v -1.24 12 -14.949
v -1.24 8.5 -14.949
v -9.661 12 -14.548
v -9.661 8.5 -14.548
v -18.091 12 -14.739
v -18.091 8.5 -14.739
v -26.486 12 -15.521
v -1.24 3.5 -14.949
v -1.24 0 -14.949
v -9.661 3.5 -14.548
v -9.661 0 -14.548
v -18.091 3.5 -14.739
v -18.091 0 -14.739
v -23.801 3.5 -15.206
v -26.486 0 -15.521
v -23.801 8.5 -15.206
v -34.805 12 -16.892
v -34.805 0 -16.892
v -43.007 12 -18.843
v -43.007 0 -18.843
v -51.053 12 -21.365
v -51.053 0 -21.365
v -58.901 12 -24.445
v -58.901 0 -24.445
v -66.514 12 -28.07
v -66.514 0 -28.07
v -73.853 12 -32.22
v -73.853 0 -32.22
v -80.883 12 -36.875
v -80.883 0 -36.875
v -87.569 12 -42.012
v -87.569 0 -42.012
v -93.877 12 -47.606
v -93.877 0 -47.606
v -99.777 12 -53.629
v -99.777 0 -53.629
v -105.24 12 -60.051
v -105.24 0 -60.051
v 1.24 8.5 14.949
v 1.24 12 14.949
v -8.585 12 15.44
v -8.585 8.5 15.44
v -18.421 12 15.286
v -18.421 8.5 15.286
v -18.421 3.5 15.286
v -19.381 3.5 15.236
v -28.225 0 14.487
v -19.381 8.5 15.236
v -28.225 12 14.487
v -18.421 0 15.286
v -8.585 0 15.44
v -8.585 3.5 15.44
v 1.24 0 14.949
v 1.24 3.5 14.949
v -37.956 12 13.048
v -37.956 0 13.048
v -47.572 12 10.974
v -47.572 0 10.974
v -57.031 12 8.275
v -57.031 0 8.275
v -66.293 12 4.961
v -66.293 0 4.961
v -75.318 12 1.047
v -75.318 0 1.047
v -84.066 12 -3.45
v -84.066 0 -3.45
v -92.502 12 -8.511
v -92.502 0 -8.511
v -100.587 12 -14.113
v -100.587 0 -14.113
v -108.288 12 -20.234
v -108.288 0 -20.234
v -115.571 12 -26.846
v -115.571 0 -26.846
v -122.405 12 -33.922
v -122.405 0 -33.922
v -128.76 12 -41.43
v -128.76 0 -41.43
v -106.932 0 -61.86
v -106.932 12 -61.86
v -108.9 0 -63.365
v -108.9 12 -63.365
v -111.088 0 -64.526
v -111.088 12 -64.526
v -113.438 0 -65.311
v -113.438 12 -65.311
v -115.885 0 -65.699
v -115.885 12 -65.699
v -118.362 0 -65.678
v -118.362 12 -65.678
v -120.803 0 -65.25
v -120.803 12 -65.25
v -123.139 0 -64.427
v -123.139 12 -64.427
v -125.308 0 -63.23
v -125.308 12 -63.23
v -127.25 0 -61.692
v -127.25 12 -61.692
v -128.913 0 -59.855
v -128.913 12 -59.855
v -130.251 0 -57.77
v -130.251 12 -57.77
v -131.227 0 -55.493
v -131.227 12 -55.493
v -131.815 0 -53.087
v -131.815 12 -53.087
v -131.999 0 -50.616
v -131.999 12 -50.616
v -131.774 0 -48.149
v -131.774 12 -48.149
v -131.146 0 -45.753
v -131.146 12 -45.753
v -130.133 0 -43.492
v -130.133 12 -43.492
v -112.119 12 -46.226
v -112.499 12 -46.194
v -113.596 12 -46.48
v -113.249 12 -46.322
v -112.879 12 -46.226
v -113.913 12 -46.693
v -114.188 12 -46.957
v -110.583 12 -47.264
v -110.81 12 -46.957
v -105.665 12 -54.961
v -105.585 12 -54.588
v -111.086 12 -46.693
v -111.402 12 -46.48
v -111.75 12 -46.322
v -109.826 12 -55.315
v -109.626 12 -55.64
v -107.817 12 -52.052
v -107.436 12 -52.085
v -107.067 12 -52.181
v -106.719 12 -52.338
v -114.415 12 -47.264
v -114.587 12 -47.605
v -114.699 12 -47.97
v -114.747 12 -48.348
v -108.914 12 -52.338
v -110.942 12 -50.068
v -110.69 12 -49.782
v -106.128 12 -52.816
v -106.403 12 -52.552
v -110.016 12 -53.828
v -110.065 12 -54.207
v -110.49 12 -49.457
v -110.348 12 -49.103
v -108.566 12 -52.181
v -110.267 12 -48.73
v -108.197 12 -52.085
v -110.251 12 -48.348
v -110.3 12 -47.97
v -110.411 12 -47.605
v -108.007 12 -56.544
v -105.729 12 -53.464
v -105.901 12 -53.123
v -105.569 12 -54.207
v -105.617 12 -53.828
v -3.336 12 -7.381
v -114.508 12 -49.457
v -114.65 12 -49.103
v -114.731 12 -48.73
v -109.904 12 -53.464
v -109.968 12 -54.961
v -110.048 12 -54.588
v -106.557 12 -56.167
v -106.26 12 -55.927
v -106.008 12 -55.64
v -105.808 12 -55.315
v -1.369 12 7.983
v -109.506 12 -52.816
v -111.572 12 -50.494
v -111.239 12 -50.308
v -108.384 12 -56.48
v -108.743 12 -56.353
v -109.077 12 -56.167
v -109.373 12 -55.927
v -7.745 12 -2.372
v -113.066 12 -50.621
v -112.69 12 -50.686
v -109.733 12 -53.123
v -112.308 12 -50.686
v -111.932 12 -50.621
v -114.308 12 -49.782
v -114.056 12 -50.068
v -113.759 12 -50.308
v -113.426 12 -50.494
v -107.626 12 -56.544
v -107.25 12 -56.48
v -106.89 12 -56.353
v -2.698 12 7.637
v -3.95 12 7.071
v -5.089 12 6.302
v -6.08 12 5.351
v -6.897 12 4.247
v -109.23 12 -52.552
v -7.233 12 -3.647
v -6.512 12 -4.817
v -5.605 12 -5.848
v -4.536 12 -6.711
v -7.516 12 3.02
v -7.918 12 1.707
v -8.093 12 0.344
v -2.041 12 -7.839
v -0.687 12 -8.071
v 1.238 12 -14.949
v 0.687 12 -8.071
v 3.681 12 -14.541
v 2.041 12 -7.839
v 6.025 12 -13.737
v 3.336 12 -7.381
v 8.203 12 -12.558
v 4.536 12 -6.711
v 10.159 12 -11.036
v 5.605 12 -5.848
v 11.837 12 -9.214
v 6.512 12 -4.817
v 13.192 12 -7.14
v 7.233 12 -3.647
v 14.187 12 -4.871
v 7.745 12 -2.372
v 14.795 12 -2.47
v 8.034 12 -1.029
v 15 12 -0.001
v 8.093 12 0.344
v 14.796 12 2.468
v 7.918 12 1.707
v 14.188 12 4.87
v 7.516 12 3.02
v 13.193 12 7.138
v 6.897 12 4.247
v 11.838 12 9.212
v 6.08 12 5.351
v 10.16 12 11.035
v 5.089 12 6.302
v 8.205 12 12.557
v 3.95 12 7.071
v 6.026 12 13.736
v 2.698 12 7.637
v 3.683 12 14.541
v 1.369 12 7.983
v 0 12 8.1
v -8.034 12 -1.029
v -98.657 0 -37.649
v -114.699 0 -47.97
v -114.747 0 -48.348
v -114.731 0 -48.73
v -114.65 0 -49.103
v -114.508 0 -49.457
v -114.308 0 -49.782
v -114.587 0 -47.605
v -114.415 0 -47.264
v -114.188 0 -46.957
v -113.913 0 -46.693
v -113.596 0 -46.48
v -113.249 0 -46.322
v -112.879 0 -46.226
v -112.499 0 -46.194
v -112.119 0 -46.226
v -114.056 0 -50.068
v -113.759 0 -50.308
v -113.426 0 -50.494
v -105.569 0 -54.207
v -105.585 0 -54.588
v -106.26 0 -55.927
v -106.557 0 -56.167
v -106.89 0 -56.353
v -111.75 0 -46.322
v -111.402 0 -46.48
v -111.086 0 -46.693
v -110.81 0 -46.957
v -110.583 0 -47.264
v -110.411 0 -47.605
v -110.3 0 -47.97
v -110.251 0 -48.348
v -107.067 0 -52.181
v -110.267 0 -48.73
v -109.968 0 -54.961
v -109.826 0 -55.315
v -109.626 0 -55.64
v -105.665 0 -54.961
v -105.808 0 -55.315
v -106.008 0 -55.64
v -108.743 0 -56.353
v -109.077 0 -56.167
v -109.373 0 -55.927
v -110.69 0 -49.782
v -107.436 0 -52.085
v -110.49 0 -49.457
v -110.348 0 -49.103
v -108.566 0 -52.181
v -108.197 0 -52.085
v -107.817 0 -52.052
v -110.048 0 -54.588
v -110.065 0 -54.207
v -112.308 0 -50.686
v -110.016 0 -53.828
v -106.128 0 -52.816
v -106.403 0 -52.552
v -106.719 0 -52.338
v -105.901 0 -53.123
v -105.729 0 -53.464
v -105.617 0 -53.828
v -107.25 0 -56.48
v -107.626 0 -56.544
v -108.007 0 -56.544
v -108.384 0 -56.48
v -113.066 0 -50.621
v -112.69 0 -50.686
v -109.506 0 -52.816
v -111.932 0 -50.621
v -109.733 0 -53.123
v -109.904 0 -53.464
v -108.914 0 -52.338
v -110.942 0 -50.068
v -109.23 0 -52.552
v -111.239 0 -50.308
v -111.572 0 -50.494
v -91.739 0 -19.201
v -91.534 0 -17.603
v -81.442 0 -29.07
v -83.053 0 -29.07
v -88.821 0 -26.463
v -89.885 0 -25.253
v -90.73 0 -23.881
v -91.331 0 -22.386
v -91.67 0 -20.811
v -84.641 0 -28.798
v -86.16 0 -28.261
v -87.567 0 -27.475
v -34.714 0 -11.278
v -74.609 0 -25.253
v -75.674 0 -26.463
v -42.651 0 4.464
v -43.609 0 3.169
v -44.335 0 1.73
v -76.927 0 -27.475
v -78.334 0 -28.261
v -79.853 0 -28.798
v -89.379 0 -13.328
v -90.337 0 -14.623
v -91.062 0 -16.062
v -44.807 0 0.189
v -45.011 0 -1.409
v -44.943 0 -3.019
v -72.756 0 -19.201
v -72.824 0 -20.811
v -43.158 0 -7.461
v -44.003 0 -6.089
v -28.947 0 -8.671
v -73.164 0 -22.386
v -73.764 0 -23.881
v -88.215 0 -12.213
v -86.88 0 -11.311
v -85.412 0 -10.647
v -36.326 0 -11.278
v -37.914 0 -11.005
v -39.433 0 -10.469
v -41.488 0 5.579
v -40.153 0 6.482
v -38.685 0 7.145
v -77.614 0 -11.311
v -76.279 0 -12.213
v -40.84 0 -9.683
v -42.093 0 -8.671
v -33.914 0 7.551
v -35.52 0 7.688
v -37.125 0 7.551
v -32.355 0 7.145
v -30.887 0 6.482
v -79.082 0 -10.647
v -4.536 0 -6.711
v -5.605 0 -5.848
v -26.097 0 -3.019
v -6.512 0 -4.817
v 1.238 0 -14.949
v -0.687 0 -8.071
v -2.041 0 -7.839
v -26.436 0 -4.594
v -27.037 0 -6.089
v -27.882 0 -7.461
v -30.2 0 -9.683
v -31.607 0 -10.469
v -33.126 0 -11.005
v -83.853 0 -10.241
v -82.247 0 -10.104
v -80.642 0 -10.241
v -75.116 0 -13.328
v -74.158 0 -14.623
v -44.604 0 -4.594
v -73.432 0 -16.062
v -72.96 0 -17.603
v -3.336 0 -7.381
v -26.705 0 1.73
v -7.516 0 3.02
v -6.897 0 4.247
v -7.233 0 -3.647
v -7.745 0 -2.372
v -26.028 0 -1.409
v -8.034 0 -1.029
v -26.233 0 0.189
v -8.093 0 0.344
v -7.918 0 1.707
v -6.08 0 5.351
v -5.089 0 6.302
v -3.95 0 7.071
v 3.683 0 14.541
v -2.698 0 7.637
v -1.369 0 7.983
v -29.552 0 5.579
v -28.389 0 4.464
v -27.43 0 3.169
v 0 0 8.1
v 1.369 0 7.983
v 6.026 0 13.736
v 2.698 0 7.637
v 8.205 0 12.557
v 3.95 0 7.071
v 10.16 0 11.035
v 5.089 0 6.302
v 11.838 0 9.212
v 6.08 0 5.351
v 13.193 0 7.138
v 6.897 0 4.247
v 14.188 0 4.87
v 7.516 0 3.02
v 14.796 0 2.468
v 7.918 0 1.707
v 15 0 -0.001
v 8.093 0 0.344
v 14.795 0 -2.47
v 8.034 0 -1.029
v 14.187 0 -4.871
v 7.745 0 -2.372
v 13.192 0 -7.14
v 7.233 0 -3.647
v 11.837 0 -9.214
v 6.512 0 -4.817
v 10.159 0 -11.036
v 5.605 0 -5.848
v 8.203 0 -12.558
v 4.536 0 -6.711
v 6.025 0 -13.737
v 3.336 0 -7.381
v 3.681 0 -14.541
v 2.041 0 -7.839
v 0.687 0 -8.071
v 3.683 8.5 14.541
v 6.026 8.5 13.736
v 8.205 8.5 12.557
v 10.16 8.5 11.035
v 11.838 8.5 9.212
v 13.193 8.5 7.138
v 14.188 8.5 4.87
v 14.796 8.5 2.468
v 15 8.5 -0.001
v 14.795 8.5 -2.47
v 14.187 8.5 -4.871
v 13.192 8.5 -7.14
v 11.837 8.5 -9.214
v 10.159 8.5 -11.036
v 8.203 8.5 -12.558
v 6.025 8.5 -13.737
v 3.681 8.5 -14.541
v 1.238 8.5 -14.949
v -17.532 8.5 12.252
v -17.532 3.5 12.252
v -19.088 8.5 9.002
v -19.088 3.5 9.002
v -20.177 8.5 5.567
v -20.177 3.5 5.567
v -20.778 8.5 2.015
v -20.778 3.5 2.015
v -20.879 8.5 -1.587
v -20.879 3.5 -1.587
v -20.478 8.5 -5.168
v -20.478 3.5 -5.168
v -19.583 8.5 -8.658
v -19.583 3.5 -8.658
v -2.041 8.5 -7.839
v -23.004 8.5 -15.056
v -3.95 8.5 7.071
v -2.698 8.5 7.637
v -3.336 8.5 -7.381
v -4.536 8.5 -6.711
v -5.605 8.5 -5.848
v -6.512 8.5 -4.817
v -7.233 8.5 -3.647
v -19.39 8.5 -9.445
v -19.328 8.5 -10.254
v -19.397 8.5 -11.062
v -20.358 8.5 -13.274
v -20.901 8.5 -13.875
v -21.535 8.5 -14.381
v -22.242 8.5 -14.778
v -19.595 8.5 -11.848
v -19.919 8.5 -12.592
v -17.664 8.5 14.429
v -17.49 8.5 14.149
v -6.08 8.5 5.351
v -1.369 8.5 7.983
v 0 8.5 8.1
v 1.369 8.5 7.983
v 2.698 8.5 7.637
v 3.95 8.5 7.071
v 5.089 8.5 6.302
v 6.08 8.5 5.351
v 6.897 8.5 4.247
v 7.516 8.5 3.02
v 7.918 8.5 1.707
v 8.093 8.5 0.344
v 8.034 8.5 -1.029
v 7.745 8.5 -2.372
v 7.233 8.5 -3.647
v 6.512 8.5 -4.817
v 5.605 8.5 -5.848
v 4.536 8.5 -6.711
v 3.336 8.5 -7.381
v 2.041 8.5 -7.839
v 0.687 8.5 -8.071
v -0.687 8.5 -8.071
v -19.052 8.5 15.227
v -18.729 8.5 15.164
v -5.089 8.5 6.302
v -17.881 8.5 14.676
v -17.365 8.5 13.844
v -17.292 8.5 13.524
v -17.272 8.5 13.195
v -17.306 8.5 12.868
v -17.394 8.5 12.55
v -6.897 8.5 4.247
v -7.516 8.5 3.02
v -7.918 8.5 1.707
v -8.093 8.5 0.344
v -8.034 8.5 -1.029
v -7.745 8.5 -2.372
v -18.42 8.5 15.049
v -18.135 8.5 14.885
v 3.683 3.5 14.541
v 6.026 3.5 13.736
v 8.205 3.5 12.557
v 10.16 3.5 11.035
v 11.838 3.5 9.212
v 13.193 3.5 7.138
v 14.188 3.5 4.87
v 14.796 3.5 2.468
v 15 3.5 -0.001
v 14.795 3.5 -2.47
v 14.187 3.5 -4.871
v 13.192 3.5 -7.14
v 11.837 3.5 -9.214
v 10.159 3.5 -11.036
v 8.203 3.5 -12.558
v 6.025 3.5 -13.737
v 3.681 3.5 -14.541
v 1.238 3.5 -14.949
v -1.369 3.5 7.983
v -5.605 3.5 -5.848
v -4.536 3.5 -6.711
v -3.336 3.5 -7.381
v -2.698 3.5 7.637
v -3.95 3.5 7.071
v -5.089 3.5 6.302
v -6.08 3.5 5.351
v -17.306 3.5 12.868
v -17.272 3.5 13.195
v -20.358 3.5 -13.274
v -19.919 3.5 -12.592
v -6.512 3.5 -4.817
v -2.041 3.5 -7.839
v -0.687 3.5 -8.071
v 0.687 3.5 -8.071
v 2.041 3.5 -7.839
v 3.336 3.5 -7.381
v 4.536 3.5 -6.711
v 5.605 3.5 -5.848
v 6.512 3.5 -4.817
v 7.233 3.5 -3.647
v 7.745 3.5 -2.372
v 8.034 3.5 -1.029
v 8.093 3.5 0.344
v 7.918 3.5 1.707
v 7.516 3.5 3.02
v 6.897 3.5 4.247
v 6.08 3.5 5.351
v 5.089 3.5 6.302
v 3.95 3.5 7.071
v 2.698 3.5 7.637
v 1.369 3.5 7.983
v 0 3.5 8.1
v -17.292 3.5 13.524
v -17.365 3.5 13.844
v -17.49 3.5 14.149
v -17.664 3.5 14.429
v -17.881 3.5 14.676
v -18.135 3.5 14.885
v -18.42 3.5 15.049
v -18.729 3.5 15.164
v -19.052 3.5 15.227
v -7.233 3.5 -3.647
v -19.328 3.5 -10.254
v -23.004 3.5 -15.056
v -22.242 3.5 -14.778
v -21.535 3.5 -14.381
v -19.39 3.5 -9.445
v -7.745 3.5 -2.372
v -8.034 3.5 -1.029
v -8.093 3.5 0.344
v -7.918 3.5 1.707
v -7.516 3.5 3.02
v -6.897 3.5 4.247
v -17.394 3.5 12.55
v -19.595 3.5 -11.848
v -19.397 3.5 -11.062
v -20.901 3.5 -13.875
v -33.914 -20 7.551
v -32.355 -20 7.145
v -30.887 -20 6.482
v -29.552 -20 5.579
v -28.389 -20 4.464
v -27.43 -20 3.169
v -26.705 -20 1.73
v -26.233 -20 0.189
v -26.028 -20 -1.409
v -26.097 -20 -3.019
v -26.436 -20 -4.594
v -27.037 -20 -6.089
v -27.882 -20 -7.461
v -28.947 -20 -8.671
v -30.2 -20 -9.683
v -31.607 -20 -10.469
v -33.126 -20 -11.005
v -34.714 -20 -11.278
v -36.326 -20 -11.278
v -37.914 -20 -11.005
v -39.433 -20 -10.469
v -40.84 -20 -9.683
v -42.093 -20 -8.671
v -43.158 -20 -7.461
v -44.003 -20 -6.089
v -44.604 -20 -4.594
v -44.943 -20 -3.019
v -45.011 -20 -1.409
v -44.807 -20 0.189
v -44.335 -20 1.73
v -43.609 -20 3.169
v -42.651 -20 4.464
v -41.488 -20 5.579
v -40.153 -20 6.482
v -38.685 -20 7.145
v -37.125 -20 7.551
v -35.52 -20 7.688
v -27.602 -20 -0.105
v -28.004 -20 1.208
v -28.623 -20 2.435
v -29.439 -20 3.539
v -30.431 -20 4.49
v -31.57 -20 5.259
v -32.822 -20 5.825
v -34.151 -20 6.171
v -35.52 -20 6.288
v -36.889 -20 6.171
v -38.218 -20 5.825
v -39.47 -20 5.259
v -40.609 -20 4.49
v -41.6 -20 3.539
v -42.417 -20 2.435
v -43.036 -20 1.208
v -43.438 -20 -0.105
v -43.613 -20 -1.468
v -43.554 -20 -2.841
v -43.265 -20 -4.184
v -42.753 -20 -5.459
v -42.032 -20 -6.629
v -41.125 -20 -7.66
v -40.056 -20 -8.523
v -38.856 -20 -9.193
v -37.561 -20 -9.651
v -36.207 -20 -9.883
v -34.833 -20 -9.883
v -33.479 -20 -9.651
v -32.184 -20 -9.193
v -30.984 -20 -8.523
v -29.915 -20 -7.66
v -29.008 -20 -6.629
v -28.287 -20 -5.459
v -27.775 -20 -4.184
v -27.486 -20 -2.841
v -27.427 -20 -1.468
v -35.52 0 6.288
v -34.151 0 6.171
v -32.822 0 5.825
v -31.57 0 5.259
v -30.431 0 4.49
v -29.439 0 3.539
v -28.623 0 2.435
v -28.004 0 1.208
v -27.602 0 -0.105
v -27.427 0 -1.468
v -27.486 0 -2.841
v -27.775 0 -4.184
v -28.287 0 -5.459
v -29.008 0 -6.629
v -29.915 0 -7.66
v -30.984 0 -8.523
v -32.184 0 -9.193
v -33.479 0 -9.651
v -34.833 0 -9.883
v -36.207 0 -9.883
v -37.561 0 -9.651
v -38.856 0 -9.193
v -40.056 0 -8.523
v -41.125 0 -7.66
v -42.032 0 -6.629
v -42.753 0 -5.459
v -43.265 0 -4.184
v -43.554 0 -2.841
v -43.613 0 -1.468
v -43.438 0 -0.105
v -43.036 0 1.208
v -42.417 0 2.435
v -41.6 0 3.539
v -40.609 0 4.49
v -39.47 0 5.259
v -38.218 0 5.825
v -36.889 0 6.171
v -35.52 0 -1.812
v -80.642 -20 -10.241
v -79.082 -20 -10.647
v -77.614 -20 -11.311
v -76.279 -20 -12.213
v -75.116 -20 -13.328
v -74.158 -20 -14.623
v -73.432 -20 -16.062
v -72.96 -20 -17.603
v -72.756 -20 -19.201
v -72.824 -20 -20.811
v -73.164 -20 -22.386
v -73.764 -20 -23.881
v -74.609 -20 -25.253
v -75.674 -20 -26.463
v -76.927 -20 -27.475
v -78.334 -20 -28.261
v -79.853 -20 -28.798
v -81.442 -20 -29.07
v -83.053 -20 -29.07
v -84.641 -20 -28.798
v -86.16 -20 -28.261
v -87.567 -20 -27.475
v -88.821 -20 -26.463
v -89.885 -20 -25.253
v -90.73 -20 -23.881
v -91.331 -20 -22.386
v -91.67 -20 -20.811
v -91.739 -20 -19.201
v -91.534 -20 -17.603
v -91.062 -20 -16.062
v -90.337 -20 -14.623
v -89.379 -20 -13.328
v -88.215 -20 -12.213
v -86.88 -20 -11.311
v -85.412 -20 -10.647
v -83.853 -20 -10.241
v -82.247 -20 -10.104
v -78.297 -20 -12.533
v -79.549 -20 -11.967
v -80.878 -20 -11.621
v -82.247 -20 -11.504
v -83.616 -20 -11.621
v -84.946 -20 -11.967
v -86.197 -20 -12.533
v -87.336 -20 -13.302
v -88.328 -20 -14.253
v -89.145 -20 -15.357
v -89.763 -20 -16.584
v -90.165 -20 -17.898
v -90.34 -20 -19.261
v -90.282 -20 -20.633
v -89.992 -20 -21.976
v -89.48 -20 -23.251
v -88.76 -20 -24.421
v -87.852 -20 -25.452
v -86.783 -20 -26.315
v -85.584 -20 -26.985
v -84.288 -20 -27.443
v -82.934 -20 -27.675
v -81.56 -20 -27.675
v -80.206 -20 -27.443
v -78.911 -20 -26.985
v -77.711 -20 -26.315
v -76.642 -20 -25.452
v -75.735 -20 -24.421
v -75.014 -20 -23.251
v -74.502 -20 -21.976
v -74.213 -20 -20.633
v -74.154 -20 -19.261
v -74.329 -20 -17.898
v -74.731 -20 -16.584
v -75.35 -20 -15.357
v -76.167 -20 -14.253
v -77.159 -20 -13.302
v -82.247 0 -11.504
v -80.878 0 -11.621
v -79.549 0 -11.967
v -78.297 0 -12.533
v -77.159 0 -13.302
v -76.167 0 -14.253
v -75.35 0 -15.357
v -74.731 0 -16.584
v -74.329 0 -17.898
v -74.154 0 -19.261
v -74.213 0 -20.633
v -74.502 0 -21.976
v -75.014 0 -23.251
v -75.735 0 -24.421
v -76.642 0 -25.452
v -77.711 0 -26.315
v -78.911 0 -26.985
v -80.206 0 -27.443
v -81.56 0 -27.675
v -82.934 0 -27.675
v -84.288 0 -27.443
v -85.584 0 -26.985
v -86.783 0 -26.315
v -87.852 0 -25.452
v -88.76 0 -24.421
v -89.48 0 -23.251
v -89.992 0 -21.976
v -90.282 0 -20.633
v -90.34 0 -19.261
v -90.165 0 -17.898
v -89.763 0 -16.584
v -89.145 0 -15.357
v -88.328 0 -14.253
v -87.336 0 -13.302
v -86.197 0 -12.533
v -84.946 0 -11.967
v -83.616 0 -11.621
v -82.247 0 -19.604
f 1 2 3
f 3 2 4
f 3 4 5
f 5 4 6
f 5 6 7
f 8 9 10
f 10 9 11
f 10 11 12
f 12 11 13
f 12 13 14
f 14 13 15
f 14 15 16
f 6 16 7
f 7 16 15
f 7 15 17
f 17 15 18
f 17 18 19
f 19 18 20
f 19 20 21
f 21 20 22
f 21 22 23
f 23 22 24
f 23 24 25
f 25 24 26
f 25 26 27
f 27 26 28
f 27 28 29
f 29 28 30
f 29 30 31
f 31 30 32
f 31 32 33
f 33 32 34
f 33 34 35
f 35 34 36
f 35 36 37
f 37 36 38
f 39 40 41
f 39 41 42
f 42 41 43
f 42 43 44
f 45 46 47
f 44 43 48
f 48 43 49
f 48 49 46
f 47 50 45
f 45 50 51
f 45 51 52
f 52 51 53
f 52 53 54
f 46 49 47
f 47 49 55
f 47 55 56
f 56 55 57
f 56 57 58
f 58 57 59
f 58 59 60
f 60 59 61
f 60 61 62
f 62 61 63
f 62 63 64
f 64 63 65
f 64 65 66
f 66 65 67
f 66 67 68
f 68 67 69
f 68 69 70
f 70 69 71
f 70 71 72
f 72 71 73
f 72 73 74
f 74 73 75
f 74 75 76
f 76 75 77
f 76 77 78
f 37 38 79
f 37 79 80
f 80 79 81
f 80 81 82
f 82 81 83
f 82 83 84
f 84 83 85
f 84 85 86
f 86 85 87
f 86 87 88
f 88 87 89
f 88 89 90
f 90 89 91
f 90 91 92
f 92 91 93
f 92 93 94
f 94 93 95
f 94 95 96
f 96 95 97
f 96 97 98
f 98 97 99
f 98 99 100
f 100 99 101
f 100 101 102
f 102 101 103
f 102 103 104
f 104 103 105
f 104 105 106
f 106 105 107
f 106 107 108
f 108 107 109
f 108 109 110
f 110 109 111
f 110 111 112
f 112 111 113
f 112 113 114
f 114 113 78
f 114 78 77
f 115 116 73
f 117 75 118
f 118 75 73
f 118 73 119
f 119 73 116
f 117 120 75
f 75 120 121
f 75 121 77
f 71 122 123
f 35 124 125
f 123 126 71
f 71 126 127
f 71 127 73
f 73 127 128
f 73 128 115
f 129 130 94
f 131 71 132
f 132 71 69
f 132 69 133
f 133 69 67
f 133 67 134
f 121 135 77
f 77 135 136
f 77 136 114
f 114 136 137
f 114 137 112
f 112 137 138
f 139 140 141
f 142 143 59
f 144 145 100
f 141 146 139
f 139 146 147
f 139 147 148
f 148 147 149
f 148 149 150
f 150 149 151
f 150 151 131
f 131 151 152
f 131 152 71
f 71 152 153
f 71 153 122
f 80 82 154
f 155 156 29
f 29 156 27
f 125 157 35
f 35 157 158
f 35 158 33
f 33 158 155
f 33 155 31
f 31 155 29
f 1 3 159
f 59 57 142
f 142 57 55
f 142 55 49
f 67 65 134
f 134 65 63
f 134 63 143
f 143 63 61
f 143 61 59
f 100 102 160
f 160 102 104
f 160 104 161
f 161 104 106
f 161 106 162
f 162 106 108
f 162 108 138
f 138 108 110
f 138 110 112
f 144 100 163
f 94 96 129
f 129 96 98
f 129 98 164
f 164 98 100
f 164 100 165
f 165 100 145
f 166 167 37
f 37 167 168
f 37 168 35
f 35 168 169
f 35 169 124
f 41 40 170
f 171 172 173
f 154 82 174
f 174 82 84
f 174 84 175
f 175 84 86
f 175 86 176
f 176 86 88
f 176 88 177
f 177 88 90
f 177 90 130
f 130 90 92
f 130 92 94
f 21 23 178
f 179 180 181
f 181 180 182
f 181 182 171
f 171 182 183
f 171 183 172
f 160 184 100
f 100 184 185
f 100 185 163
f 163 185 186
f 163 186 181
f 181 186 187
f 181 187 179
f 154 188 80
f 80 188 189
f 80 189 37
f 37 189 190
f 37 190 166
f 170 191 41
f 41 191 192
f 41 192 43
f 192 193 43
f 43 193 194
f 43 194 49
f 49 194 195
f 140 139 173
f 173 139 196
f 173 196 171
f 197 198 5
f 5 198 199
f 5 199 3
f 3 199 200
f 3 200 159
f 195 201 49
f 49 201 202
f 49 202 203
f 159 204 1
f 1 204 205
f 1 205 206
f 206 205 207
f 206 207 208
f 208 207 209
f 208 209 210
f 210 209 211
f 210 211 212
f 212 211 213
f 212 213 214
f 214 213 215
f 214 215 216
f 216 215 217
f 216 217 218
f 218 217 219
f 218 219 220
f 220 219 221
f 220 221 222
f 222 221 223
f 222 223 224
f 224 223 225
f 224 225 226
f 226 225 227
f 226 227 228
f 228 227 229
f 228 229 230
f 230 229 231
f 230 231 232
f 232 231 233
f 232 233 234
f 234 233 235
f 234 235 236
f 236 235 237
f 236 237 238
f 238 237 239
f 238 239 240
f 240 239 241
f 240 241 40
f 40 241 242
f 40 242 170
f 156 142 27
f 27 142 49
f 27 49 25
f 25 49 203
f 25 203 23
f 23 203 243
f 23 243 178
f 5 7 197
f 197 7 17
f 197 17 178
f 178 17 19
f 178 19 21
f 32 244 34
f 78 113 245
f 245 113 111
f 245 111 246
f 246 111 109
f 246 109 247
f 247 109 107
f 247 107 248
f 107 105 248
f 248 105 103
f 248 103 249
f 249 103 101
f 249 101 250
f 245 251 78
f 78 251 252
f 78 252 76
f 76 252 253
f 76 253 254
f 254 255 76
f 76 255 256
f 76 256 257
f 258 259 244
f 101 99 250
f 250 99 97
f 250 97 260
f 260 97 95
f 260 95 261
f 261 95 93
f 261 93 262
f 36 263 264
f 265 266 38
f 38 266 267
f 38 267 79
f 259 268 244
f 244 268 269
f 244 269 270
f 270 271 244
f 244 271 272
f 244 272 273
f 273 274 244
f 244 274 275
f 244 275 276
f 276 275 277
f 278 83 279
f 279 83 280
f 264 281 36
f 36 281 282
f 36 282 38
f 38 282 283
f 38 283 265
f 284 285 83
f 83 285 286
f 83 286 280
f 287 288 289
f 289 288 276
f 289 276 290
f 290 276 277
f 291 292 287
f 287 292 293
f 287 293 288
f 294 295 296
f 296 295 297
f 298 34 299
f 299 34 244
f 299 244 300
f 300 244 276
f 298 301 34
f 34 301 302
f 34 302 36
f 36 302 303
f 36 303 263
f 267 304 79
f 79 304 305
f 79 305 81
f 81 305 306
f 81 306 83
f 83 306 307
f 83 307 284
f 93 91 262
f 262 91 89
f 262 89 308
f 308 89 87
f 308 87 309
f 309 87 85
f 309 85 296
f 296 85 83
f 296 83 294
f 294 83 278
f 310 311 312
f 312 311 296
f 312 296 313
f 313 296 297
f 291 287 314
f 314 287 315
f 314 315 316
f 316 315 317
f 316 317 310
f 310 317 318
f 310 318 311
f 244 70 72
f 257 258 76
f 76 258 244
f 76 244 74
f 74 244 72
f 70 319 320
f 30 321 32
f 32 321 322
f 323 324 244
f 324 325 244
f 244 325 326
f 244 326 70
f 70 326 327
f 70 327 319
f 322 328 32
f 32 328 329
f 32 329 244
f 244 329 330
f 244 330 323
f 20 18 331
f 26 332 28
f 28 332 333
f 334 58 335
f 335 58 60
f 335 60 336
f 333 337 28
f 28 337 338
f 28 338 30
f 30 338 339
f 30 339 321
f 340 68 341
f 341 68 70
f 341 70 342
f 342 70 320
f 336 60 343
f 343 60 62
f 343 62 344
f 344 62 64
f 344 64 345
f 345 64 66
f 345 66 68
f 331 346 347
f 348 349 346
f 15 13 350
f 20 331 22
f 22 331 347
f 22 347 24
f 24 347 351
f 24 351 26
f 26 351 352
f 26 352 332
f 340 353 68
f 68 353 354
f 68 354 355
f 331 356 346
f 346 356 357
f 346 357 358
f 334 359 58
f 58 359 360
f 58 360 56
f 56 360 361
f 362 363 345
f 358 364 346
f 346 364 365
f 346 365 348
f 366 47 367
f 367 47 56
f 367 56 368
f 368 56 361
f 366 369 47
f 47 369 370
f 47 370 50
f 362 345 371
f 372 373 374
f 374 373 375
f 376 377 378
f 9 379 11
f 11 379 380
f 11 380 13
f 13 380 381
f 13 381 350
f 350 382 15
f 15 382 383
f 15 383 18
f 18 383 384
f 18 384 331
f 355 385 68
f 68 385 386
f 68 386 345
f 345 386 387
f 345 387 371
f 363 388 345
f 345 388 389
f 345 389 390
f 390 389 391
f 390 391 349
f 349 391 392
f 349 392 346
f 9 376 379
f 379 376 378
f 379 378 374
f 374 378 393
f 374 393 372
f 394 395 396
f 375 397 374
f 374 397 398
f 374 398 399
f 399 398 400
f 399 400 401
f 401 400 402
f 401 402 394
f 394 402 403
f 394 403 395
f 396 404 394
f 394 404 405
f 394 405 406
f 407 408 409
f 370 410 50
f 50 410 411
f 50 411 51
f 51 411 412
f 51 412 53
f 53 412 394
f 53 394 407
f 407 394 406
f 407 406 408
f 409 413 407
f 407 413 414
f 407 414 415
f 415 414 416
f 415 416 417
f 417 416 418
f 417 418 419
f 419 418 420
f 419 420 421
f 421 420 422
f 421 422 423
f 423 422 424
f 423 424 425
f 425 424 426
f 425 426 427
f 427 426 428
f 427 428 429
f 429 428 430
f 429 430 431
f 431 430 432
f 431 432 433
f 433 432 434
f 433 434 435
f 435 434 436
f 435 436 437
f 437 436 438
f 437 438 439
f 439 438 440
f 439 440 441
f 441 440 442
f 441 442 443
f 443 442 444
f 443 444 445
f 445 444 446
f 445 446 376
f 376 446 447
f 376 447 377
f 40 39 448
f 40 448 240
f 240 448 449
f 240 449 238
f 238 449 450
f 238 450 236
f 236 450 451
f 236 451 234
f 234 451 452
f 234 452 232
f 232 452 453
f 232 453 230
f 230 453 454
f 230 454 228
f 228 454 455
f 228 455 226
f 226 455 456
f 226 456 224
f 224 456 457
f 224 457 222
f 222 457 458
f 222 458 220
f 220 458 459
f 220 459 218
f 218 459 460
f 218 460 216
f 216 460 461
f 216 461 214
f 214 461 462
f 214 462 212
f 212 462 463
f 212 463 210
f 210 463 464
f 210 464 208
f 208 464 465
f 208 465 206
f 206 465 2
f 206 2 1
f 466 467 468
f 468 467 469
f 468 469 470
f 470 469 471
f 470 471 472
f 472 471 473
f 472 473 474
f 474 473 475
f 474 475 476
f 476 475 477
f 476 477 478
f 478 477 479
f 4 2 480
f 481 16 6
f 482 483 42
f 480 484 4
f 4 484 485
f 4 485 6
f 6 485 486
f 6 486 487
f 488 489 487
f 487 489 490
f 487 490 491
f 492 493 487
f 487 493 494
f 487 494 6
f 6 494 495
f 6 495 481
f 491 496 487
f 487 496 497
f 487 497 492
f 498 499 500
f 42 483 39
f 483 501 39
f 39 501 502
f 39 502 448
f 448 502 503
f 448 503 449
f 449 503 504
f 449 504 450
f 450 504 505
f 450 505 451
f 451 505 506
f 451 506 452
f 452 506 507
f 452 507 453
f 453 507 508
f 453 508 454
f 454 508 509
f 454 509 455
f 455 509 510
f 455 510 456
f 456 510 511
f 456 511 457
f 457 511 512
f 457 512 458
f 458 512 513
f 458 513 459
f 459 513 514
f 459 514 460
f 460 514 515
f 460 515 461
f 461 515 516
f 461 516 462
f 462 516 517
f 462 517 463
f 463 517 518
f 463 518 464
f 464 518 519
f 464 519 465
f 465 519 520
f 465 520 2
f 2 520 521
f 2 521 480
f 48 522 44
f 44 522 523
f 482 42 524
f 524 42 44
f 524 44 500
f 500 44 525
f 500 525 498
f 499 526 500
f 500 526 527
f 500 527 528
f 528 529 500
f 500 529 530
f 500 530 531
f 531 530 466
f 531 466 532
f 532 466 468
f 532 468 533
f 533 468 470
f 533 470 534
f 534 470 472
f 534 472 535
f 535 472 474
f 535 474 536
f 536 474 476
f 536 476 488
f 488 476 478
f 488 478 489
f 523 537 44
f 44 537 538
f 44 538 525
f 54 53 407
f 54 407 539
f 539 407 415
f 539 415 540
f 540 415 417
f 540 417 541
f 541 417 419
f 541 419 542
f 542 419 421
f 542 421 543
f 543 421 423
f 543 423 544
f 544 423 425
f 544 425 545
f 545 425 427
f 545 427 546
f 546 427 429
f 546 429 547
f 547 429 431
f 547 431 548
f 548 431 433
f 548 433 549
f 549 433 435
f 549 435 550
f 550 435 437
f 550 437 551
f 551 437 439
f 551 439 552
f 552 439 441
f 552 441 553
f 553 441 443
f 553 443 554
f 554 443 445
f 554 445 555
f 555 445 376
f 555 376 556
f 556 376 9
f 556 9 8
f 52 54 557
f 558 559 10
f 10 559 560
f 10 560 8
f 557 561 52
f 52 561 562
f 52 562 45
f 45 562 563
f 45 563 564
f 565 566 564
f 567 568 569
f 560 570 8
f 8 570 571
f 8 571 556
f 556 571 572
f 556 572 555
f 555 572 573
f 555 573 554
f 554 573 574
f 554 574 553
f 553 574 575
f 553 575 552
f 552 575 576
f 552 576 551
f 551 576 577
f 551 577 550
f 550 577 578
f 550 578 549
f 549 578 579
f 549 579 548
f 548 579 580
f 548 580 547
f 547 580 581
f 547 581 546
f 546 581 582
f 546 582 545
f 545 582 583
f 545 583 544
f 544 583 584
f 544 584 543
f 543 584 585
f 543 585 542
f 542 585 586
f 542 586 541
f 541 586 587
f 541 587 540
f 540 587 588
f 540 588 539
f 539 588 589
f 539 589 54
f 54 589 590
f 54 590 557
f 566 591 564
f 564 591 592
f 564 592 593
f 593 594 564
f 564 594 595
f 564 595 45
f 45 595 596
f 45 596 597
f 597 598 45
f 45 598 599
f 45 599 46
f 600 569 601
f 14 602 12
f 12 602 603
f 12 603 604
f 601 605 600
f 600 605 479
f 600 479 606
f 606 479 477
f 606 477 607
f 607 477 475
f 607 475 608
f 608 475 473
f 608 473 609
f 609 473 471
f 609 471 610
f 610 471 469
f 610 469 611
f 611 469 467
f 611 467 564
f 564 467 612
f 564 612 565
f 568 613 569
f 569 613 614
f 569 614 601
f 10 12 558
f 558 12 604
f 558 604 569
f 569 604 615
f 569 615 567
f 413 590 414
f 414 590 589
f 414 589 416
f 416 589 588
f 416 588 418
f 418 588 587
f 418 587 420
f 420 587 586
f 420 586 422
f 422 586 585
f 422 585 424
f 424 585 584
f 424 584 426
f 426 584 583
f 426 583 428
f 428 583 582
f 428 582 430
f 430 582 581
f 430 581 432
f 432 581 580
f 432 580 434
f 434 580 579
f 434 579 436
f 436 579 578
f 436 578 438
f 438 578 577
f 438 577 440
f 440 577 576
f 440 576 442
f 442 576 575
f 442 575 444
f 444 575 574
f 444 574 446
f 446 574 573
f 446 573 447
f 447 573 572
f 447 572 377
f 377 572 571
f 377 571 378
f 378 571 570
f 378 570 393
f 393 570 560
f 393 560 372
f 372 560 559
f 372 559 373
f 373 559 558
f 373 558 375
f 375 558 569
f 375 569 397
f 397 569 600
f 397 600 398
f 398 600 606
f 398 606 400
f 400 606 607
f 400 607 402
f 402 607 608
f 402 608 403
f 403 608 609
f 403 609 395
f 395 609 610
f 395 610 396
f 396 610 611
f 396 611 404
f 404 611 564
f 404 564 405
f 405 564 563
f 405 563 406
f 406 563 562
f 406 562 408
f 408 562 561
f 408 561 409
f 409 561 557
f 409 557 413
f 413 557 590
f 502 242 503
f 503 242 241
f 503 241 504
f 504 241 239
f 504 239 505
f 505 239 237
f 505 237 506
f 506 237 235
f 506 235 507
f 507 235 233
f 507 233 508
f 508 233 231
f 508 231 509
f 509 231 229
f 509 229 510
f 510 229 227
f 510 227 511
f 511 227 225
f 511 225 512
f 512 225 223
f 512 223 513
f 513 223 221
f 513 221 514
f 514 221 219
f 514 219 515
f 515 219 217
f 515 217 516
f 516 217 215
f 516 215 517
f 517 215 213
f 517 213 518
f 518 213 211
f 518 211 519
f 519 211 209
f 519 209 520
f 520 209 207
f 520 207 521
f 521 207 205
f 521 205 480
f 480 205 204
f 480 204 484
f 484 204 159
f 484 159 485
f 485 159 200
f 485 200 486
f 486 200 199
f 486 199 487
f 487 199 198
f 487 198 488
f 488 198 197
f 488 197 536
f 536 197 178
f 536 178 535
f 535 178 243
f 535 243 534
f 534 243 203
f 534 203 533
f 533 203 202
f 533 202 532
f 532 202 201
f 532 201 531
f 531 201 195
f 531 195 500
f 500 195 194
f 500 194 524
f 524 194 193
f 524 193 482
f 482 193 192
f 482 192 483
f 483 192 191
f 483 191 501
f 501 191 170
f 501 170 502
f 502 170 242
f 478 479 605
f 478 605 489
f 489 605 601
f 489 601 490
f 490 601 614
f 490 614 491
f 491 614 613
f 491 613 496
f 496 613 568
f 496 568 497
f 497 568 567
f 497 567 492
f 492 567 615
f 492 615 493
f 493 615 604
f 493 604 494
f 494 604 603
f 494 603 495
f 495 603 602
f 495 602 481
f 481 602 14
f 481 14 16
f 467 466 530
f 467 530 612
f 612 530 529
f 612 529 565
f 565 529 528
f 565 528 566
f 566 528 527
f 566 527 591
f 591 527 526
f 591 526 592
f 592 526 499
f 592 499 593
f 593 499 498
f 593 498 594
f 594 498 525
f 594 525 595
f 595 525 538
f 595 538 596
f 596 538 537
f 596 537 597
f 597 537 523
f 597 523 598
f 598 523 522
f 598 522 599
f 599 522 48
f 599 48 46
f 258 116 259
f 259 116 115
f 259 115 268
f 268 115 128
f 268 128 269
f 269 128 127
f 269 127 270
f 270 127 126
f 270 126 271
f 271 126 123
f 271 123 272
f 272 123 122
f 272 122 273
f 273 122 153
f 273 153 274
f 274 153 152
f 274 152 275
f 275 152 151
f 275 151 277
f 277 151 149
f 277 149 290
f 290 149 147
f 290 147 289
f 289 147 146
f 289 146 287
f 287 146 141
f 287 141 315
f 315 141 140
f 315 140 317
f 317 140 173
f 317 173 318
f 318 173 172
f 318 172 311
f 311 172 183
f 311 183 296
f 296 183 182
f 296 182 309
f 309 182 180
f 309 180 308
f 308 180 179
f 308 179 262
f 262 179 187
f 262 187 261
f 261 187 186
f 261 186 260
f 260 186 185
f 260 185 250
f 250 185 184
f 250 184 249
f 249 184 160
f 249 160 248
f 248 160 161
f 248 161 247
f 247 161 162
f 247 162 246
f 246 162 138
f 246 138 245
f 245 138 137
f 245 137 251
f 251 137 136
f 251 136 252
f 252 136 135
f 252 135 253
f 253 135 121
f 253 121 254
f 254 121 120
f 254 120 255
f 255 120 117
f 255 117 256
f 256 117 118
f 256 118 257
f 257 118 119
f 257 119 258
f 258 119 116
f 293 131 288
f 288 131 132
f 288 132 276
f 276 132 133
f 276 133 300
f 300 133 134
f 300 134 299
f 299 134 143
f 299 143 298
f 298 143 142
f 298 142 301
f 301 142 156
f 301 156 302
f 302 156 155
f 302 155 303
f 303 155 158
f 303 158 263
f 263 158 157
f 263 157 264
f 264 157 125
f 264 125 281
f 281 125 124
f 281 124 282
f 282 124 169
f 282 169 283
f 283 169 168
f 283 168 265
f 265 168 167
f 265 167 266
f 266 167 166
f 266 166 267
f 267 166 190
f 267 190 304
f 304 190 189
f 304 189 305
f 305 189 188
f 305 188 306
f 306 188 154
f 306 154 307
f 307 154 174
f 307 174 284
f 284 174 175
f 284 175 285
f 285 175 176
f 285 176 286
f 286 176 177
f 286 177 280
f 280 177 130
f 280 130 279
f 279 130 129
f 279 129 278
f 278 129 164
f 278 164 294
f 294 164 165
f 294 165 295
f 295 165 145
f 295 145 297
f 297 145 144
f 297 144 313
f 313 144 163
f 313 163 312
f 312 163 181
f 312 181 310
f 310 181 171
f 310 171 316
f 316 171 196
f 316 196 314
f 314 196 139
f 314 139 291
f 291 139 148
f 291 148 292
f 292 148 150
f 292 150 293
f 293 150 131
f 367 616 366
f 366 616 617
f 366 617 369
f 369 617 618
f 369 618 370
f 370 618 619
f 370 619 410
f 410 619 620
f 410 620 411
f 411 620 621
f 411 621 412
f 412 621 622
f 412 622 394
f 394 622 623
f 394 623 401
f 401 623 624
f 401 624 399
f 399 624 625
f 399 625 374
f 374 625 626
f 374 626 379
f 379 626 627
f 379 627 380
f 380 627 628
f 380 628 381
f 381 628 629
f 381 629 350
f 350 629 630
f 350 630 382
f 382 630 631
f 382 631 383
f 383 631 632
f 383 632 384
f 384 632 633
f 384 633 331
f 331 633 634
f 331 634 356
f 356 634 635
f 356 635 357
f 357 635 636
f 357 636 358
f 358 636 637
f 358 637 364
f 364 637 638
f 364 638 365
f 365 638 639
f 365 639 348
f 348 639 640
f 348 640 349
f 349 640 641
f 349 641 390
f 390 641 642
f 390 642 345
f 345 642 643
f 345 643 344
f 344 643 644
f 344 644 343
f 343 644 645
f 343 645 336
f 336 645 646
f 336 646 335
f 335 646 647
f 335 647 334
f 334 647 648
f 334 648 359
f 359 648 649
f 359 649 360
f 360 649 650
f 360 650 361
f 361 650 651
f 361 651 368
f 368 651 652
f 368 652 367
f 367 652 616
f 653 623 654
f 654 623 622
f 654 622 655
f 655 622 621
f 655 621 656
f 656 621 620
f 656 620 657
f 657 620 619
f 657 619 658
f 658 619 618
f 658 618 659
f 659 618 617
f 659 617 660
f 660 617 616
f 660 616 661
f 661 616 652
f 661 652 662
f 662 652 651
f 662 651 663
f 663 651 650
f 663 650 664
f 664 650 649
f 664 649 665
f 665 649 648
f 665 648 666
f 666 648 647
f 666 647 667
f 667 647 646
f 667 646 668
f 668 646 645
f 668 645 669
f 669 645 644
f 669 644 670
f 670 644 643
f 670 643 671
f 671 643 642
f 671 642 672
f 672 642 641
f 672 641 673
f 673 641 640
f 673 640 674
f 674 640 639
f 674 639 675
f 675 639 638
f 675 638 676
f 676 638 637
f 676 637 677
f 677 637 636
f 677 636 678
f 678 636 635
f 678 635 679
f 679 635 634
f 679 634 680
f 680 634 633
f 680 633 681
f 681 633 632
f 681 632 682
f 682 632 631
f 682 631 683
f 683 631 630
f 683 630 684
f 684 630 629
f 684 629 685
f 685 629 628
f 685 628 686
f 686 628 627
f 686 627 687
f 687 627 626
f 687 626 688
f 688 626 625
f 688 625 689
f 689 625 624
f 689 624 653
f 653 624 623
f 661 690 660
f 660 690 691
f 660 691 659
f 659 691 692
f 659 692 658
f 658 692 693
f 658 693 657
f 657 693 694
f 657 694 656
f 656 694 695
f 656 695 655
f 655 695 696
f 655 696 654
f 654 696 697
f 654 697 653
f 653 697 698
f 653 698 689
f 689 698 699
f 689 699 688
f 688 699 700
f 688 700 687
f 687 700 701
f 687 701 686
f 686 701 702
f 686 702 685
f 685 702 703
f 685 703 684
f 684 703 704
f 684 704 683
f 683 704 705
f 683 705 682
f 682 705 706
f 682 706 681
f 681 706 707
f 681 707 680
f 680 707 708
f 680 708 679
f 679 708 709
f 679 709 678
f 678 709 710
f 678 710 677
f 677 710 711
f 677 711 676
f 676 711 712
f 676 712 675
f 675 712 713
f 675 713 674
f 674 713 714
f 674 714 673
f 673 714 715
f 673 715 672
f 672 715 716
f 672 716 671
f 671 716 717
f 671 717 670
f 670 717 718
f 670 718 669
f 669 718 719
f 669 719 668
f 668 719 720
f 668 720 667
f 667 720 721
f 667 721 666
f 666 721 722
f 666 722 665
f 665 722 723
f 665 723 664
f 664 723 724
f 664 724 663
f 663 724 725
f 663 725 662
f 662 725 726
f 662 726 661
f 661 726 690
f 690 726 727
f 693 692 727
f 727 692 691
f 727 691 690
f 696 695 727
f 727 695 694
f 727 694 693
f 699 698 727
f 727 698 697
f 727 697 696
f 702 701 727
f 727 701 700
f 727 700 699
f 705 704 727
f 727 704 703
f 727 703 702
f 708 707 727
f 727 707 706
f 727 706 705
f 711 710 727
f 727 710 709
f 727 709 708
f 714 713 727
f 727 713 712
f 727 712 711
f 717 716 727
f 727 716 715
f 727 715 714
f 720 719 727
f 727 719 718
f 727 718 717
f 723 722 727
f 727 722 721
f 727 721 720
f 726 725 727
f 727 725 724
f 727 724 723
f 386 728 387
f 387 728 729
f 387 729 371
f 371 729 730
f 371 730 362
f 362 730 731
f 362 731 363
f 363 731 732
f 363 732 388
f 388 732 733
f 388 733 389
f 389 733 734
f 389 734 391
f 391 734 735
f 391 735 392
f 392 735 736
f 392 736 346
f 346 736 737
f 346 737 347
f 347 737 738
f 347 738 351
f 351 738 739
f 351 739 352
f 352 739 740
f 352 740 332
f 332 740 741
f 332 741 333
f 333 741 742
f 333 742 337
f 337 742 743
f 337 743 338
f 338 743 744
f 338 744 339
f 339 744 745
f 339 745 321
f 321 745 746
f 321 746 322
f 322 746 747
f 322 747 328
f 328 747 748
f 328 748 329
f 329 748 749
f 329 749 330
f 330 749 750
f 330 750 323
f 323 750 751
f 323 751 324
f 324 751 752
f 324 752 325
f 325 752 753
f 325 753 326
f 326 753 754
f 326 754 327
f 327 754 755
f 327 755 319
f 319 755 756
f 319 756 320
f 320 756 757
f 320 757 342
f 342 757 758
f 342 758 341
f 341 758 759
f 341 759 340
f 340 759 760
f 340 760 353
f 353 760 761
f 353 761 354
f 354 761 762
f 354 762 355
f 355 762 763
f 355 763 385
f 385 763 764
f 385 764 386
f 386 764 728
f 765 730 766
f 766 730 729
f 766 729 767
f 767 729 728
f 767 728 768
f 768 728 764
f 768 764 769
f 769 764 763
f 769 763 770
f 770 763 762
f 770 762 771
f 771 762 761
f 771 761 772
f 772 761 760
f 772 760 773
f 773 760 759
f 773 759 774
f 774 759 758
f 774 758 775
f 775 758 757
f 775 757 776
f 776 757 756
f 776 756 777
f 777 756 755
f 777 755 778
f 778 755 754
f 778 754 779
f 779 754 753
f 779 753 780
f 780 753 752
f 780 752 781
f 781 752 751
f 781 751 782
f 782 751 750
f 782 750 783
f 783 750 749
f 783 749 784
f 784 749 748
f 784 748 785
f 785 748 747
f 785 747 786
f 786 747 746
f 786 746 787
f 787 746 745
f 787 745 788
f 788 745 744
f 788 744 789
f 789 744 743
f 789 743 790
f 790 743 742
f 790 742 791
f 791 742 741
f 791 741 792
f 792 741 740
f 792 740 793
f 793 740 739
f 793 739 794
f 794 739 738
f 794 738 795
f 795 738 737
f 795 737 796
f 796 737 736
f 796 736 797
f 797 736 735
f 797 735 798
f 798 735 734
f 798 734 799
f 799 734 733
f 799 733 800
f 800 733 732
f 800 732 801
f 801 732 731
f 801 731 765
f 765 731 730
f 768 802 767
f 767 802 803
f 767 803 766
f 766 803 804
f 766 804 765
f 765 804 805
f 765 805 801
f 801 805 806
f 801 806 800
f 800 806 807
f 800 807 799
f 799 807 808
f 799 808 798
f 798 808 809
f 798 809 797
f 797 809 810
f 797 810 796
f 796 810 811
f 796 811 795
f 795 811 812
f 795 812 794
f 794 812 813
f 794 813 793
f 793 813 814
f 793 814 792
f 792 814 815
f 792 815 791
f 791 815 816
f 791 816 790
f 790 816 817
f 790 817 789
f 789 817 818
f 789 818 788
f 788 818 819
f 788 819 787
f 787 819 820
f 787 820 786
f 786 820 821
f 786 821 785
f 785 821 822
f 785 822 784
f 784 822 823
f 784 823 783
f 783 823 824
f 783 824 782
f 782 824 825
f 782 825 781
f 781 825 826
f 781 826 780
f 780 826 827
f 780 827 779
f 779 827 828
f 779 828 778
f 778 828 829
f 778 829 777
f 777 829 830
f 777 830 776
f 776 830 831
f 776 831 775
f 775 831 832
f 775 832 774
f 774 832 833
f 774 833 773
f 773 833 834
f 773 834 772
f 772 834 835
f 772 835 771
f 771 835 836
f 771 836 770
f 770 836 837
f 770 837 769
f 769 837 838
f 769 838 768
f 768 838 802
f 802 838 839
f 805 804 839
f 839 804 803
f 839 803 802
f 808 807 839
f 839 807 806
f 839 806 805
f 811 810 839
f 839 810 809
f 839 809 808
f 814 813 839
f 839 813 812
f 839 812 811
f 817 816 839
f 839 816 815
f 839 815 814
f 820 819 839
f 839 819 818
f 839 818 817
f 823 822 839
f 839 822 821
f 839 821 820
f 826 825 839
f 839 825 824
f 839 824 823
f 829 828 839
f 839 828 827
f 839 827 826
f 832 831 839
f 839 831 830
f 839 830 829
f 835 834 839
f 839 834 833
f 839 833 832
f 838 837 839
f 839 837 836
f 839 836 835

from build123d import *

# Parameters (mm, degrees)
BOSS_EXTRUDE4_DEPTH = 11.999999999999996
BOSS_EXTRUDE5_DEPTH = 3.5
BOSS_EXTRUDE6_DEPTH = 12
CUT_EXTRUDE2_DEPTH  = 8.5
BOSS_EXTRUDE7_DEPTH = 3.5000000000000004
SKETCH2_R           = 8.1
CUT_EXTRUDE3_DEPTH  = 12
FILLET1_R           = 5
FILLET2_R           = 2
SKETCH3_R           = 2.2499999999999964
CUT_EXTRUDE4_DEPTH  = 12
SKETCH4_R           = 9.500000000000002
SKETCH4_R_2         = 8.1
SKETCH4_R_3         = 9.499999999999995
SKETCH4_R_4         = 8.099999999999993
BOSS_EXTRUDE8_DEPTH = 19.999999999999993


with BuildPart() as part:
    # Sketch1 → Boss-Extrude4 (new body)
    with BuildSketch(Plane(origin=(0, 0, 0), x_dir=(1, 0, 0), z_dir=(0, 1, 0))):
        with BuildLine():
            ThreePointArc((-105.23956914411866, 60.05130546378884), (-126.31086817026393, 62.500868149406244), (-128.76043085588134, 41.429569123260976))
            ThreePointArc((-128.76043085588134, 41.42956912326096), (-78.3921989201775, 0.4513014224205847), (-15.424890802752289, -15.400995588922257))
            ThreePointArc((-15.424890802752284, -15.400995588922251), (-20.878753235246265, -0.5691494549701637), (-16.67921047602729, 14.665420305521598))
            ThreePointArc((-16.679210476027265, 14.665420305521593), (-65.8857769449076, 27.74562513419724), (-105.23956914411866, 60.05130546378885))
        make_face()
    extrude(amount=BOSS_EXTRUDE4_DEPTH)

    # Sketch1<6> → Boss-Extrude5 (add)
    with BuildSketch(Plane(origin=(0, 0, 0), x_dir=(1, 0, 0), z_dir=(0, 1, 0))):
        with BuildLine():
            ThreePointArc((-16.67921047602729, 14.665420305521598), (-20.878753235246265, -0.5691494549701637), (-15.424890802752284, -15.400995588922251))
            ThreePointArc((-15.424890802752289, -15.400995588922257), (-7.086372530747029, -15.406529466177687), (1.2395691441186596, -14.94869453621115))
            ThreePointArc((1.2395691441186607, -14.948694536211157), (14.948694536211152, 1.2395691441186514), (-1.2395691441186483, 14.948694536211152))
            ThreePointArc((-1.2395691441186347, 14.94869453621115), (-8.954828429393212, 14.55844291928571), (-16.679210476027265, 14.665420305521593))
        make_face()
    extrude(amount=BOSS_EXTRUDE5_DEPTH)

    # Sketch1<8> → Boss-Extrude6 (add)
    with BuildSketch(Plane(origin=(0, 0, 0), x_dir=(1, 0, 0), z_dir=(0, 1, 0))):
        with BuildLine():
            ThreePointArc((-16.67921047602729, 14.665420305521598), (-20.878753235246265, -0.5691494549701637), (-15.424890802752284, -15.400995588922251))
            ThreePointArc((-15.424890802752289, -15.400995588922257), (-7.086372530747029, -15.406529466177687), (1.2395691441186596, -14.94869453621115))
            ThreePointArc((1.2395691441186607, -14.948694536211157), (14.948694536211152, 1.2395691441186514), (-1.2395691441186483, 14.948694536211152))
            ThreePointArc((-1.2395691441186347, 14.94869453621115), (-8.954828429393212, 14.55844291928571), (-16.679210476027265, 14.665420305521593))
        make_face()
    extrude(amount=BOSS_EXTRUDE6_DEPTH)

    # Sketch1<9> → Cut-Extrude2 (cut)
    with BuildSketch(Plane(origin=(0, 0, 0), x_dir=(1, 0, 0), z_dir=(0, 1, 0))):
        with BuildLine():
            ThreePointArc((-16.67921047602729, 14.665420305521598), (-20.878753235246265, -0.5691494549701637), (-15.424890802752284, -15.400995588922251))
            ThreePointArc((-15.424890802752289, -15.400995588922257), (-7.086372530747029, -15.406529466177687), (1.2395691441186596, -14.94869453621115))
            ThreePointArc((1.2395691441186607, -14.948694536211157), (14.948694536211152, 1.2395691441186514), (-1.2395691441186483, 14.948694536211152))
            ThreePointArc((-1.2395691441186347, 14.94869453621115), (-8.954828429393212, 14.55844291928571), (-16.679210476027265, 14.665420305521593))
        make_face()
    extrude(amount=CUT_EXTRUDE2_DEPTH, mode=Mode.SUBTRACT)

    # Sketch1<10> → Boss-Extrude7 (add)
    with BuildSketch(Plane(origin=(0, 0, 0), x_dir=(1, 0, 0), z_dir=(0, 1, 0))):
        with BuildLine():
            ThreePointArc((-16.67921047602729, 14.665420305521598), (-20.878753235246265, -0.5691494549701637), (-15.424890802752284, -15.400995588922251))
            ThreePointArc((-15.424890802752289, -15.400995588922257), (-7.086372530747029, -15.406529466177687), (1.2395691441186596, -14.94869453621115))
            ThreePointArc((1.2395691441186607, -14.948694536211157), (14.948694536211152, 1.2395691441186514), (-1.2395691441186483, 14.948694536211152))
            ThreePointArc((-1.2395691441186347, 14.94869453621115), (-8.954828429393212, 14.55844291928571), (-16.679210476027265, 14.665420305521593))
        make_face()
    extrude(amount=BOSS_EXTRUDE7_DEPTH)

    # Sketch2 → Cut-Extrude3 (cut)
    with BuildSketch(Plane(origin=(0, 11.999999999999996, 0), x_dir=(1, 0, 0), z_dir=(0, 1, 0))):
        Circle(SKETCH2_R)
    extrude(amount=-CUT_EXTRUDE3_DEPTH, mode=Mode.SUBTRACT)

    # Fillet1
    fillet1_edges = [part.edges().sort_by_distance(p)[0] for p in [
        (-16.67921047602728, 6, -14.665420305521597),
    ]]
    fillet(fillet1_edges, radius=FILLET1_R)

    # Fillet2
    fillet2_edges = [part.edges().sort_by_distance(p)[0] for p in [
        (-15.424890802752289, 6, 15.400995588922266),
    ]]
    fillet(fillet2_edges, radius=FILLET2_R)

    # Sketch3 → Cut-Extrude4 (cut)
    with BuildSketch(Plane(origin=(0, 11.999999999999996, 0), x_dir=(1, 0, 0), z_dir=(0, 1, 0))):
        with Locations((-107.81660725396851, 54.30249040498051)):
            Circle(SKETCH3_R)
        with Locations((-112.49908312253997, 48.44378579216329)):
            Circle(SKETCH3_R)
    extrude(amount=-CUT_EXTRUDE4_DEPTH, mode=Mode.SUBTRACT)

    # Sketch4 → Boss-Extrude8 (add)
    # profile 1 of 2: a face of its own
    with BuildSketch(Plane(origin=(0, 0, 0), x_dir=(1, 0, 0), z_dir=(0, 1, 0))):
        with Locations((-35.51993478051481, 1.811997227050931)):
            Circle(SKETCH4_R)
        with Locations((-35.51993478051481, 1.811997227050931)):
            Circle(SKETCH4_R_2, mode=Mode.SUBTRACT)
    # profile 2 of 2: a face of its own
    with BuildSketch(Plane(origin=(0, 0, 0), x_dir=(1, 0, 0), z_dir=(0, 1, 0))):
        with Locations((-82.24716798080135, 19.60428986869888)):
            Circle(SKETCH4_R_3)
        with Locations((-82.24716798080135, 19.60428986869888)):
            Circle(SKETCH4_R_4, mode=Mode.SUBTRACT)
    extrude(amount=-BOSS_EXTRUDE8_DEPTH)


solid = part.part
